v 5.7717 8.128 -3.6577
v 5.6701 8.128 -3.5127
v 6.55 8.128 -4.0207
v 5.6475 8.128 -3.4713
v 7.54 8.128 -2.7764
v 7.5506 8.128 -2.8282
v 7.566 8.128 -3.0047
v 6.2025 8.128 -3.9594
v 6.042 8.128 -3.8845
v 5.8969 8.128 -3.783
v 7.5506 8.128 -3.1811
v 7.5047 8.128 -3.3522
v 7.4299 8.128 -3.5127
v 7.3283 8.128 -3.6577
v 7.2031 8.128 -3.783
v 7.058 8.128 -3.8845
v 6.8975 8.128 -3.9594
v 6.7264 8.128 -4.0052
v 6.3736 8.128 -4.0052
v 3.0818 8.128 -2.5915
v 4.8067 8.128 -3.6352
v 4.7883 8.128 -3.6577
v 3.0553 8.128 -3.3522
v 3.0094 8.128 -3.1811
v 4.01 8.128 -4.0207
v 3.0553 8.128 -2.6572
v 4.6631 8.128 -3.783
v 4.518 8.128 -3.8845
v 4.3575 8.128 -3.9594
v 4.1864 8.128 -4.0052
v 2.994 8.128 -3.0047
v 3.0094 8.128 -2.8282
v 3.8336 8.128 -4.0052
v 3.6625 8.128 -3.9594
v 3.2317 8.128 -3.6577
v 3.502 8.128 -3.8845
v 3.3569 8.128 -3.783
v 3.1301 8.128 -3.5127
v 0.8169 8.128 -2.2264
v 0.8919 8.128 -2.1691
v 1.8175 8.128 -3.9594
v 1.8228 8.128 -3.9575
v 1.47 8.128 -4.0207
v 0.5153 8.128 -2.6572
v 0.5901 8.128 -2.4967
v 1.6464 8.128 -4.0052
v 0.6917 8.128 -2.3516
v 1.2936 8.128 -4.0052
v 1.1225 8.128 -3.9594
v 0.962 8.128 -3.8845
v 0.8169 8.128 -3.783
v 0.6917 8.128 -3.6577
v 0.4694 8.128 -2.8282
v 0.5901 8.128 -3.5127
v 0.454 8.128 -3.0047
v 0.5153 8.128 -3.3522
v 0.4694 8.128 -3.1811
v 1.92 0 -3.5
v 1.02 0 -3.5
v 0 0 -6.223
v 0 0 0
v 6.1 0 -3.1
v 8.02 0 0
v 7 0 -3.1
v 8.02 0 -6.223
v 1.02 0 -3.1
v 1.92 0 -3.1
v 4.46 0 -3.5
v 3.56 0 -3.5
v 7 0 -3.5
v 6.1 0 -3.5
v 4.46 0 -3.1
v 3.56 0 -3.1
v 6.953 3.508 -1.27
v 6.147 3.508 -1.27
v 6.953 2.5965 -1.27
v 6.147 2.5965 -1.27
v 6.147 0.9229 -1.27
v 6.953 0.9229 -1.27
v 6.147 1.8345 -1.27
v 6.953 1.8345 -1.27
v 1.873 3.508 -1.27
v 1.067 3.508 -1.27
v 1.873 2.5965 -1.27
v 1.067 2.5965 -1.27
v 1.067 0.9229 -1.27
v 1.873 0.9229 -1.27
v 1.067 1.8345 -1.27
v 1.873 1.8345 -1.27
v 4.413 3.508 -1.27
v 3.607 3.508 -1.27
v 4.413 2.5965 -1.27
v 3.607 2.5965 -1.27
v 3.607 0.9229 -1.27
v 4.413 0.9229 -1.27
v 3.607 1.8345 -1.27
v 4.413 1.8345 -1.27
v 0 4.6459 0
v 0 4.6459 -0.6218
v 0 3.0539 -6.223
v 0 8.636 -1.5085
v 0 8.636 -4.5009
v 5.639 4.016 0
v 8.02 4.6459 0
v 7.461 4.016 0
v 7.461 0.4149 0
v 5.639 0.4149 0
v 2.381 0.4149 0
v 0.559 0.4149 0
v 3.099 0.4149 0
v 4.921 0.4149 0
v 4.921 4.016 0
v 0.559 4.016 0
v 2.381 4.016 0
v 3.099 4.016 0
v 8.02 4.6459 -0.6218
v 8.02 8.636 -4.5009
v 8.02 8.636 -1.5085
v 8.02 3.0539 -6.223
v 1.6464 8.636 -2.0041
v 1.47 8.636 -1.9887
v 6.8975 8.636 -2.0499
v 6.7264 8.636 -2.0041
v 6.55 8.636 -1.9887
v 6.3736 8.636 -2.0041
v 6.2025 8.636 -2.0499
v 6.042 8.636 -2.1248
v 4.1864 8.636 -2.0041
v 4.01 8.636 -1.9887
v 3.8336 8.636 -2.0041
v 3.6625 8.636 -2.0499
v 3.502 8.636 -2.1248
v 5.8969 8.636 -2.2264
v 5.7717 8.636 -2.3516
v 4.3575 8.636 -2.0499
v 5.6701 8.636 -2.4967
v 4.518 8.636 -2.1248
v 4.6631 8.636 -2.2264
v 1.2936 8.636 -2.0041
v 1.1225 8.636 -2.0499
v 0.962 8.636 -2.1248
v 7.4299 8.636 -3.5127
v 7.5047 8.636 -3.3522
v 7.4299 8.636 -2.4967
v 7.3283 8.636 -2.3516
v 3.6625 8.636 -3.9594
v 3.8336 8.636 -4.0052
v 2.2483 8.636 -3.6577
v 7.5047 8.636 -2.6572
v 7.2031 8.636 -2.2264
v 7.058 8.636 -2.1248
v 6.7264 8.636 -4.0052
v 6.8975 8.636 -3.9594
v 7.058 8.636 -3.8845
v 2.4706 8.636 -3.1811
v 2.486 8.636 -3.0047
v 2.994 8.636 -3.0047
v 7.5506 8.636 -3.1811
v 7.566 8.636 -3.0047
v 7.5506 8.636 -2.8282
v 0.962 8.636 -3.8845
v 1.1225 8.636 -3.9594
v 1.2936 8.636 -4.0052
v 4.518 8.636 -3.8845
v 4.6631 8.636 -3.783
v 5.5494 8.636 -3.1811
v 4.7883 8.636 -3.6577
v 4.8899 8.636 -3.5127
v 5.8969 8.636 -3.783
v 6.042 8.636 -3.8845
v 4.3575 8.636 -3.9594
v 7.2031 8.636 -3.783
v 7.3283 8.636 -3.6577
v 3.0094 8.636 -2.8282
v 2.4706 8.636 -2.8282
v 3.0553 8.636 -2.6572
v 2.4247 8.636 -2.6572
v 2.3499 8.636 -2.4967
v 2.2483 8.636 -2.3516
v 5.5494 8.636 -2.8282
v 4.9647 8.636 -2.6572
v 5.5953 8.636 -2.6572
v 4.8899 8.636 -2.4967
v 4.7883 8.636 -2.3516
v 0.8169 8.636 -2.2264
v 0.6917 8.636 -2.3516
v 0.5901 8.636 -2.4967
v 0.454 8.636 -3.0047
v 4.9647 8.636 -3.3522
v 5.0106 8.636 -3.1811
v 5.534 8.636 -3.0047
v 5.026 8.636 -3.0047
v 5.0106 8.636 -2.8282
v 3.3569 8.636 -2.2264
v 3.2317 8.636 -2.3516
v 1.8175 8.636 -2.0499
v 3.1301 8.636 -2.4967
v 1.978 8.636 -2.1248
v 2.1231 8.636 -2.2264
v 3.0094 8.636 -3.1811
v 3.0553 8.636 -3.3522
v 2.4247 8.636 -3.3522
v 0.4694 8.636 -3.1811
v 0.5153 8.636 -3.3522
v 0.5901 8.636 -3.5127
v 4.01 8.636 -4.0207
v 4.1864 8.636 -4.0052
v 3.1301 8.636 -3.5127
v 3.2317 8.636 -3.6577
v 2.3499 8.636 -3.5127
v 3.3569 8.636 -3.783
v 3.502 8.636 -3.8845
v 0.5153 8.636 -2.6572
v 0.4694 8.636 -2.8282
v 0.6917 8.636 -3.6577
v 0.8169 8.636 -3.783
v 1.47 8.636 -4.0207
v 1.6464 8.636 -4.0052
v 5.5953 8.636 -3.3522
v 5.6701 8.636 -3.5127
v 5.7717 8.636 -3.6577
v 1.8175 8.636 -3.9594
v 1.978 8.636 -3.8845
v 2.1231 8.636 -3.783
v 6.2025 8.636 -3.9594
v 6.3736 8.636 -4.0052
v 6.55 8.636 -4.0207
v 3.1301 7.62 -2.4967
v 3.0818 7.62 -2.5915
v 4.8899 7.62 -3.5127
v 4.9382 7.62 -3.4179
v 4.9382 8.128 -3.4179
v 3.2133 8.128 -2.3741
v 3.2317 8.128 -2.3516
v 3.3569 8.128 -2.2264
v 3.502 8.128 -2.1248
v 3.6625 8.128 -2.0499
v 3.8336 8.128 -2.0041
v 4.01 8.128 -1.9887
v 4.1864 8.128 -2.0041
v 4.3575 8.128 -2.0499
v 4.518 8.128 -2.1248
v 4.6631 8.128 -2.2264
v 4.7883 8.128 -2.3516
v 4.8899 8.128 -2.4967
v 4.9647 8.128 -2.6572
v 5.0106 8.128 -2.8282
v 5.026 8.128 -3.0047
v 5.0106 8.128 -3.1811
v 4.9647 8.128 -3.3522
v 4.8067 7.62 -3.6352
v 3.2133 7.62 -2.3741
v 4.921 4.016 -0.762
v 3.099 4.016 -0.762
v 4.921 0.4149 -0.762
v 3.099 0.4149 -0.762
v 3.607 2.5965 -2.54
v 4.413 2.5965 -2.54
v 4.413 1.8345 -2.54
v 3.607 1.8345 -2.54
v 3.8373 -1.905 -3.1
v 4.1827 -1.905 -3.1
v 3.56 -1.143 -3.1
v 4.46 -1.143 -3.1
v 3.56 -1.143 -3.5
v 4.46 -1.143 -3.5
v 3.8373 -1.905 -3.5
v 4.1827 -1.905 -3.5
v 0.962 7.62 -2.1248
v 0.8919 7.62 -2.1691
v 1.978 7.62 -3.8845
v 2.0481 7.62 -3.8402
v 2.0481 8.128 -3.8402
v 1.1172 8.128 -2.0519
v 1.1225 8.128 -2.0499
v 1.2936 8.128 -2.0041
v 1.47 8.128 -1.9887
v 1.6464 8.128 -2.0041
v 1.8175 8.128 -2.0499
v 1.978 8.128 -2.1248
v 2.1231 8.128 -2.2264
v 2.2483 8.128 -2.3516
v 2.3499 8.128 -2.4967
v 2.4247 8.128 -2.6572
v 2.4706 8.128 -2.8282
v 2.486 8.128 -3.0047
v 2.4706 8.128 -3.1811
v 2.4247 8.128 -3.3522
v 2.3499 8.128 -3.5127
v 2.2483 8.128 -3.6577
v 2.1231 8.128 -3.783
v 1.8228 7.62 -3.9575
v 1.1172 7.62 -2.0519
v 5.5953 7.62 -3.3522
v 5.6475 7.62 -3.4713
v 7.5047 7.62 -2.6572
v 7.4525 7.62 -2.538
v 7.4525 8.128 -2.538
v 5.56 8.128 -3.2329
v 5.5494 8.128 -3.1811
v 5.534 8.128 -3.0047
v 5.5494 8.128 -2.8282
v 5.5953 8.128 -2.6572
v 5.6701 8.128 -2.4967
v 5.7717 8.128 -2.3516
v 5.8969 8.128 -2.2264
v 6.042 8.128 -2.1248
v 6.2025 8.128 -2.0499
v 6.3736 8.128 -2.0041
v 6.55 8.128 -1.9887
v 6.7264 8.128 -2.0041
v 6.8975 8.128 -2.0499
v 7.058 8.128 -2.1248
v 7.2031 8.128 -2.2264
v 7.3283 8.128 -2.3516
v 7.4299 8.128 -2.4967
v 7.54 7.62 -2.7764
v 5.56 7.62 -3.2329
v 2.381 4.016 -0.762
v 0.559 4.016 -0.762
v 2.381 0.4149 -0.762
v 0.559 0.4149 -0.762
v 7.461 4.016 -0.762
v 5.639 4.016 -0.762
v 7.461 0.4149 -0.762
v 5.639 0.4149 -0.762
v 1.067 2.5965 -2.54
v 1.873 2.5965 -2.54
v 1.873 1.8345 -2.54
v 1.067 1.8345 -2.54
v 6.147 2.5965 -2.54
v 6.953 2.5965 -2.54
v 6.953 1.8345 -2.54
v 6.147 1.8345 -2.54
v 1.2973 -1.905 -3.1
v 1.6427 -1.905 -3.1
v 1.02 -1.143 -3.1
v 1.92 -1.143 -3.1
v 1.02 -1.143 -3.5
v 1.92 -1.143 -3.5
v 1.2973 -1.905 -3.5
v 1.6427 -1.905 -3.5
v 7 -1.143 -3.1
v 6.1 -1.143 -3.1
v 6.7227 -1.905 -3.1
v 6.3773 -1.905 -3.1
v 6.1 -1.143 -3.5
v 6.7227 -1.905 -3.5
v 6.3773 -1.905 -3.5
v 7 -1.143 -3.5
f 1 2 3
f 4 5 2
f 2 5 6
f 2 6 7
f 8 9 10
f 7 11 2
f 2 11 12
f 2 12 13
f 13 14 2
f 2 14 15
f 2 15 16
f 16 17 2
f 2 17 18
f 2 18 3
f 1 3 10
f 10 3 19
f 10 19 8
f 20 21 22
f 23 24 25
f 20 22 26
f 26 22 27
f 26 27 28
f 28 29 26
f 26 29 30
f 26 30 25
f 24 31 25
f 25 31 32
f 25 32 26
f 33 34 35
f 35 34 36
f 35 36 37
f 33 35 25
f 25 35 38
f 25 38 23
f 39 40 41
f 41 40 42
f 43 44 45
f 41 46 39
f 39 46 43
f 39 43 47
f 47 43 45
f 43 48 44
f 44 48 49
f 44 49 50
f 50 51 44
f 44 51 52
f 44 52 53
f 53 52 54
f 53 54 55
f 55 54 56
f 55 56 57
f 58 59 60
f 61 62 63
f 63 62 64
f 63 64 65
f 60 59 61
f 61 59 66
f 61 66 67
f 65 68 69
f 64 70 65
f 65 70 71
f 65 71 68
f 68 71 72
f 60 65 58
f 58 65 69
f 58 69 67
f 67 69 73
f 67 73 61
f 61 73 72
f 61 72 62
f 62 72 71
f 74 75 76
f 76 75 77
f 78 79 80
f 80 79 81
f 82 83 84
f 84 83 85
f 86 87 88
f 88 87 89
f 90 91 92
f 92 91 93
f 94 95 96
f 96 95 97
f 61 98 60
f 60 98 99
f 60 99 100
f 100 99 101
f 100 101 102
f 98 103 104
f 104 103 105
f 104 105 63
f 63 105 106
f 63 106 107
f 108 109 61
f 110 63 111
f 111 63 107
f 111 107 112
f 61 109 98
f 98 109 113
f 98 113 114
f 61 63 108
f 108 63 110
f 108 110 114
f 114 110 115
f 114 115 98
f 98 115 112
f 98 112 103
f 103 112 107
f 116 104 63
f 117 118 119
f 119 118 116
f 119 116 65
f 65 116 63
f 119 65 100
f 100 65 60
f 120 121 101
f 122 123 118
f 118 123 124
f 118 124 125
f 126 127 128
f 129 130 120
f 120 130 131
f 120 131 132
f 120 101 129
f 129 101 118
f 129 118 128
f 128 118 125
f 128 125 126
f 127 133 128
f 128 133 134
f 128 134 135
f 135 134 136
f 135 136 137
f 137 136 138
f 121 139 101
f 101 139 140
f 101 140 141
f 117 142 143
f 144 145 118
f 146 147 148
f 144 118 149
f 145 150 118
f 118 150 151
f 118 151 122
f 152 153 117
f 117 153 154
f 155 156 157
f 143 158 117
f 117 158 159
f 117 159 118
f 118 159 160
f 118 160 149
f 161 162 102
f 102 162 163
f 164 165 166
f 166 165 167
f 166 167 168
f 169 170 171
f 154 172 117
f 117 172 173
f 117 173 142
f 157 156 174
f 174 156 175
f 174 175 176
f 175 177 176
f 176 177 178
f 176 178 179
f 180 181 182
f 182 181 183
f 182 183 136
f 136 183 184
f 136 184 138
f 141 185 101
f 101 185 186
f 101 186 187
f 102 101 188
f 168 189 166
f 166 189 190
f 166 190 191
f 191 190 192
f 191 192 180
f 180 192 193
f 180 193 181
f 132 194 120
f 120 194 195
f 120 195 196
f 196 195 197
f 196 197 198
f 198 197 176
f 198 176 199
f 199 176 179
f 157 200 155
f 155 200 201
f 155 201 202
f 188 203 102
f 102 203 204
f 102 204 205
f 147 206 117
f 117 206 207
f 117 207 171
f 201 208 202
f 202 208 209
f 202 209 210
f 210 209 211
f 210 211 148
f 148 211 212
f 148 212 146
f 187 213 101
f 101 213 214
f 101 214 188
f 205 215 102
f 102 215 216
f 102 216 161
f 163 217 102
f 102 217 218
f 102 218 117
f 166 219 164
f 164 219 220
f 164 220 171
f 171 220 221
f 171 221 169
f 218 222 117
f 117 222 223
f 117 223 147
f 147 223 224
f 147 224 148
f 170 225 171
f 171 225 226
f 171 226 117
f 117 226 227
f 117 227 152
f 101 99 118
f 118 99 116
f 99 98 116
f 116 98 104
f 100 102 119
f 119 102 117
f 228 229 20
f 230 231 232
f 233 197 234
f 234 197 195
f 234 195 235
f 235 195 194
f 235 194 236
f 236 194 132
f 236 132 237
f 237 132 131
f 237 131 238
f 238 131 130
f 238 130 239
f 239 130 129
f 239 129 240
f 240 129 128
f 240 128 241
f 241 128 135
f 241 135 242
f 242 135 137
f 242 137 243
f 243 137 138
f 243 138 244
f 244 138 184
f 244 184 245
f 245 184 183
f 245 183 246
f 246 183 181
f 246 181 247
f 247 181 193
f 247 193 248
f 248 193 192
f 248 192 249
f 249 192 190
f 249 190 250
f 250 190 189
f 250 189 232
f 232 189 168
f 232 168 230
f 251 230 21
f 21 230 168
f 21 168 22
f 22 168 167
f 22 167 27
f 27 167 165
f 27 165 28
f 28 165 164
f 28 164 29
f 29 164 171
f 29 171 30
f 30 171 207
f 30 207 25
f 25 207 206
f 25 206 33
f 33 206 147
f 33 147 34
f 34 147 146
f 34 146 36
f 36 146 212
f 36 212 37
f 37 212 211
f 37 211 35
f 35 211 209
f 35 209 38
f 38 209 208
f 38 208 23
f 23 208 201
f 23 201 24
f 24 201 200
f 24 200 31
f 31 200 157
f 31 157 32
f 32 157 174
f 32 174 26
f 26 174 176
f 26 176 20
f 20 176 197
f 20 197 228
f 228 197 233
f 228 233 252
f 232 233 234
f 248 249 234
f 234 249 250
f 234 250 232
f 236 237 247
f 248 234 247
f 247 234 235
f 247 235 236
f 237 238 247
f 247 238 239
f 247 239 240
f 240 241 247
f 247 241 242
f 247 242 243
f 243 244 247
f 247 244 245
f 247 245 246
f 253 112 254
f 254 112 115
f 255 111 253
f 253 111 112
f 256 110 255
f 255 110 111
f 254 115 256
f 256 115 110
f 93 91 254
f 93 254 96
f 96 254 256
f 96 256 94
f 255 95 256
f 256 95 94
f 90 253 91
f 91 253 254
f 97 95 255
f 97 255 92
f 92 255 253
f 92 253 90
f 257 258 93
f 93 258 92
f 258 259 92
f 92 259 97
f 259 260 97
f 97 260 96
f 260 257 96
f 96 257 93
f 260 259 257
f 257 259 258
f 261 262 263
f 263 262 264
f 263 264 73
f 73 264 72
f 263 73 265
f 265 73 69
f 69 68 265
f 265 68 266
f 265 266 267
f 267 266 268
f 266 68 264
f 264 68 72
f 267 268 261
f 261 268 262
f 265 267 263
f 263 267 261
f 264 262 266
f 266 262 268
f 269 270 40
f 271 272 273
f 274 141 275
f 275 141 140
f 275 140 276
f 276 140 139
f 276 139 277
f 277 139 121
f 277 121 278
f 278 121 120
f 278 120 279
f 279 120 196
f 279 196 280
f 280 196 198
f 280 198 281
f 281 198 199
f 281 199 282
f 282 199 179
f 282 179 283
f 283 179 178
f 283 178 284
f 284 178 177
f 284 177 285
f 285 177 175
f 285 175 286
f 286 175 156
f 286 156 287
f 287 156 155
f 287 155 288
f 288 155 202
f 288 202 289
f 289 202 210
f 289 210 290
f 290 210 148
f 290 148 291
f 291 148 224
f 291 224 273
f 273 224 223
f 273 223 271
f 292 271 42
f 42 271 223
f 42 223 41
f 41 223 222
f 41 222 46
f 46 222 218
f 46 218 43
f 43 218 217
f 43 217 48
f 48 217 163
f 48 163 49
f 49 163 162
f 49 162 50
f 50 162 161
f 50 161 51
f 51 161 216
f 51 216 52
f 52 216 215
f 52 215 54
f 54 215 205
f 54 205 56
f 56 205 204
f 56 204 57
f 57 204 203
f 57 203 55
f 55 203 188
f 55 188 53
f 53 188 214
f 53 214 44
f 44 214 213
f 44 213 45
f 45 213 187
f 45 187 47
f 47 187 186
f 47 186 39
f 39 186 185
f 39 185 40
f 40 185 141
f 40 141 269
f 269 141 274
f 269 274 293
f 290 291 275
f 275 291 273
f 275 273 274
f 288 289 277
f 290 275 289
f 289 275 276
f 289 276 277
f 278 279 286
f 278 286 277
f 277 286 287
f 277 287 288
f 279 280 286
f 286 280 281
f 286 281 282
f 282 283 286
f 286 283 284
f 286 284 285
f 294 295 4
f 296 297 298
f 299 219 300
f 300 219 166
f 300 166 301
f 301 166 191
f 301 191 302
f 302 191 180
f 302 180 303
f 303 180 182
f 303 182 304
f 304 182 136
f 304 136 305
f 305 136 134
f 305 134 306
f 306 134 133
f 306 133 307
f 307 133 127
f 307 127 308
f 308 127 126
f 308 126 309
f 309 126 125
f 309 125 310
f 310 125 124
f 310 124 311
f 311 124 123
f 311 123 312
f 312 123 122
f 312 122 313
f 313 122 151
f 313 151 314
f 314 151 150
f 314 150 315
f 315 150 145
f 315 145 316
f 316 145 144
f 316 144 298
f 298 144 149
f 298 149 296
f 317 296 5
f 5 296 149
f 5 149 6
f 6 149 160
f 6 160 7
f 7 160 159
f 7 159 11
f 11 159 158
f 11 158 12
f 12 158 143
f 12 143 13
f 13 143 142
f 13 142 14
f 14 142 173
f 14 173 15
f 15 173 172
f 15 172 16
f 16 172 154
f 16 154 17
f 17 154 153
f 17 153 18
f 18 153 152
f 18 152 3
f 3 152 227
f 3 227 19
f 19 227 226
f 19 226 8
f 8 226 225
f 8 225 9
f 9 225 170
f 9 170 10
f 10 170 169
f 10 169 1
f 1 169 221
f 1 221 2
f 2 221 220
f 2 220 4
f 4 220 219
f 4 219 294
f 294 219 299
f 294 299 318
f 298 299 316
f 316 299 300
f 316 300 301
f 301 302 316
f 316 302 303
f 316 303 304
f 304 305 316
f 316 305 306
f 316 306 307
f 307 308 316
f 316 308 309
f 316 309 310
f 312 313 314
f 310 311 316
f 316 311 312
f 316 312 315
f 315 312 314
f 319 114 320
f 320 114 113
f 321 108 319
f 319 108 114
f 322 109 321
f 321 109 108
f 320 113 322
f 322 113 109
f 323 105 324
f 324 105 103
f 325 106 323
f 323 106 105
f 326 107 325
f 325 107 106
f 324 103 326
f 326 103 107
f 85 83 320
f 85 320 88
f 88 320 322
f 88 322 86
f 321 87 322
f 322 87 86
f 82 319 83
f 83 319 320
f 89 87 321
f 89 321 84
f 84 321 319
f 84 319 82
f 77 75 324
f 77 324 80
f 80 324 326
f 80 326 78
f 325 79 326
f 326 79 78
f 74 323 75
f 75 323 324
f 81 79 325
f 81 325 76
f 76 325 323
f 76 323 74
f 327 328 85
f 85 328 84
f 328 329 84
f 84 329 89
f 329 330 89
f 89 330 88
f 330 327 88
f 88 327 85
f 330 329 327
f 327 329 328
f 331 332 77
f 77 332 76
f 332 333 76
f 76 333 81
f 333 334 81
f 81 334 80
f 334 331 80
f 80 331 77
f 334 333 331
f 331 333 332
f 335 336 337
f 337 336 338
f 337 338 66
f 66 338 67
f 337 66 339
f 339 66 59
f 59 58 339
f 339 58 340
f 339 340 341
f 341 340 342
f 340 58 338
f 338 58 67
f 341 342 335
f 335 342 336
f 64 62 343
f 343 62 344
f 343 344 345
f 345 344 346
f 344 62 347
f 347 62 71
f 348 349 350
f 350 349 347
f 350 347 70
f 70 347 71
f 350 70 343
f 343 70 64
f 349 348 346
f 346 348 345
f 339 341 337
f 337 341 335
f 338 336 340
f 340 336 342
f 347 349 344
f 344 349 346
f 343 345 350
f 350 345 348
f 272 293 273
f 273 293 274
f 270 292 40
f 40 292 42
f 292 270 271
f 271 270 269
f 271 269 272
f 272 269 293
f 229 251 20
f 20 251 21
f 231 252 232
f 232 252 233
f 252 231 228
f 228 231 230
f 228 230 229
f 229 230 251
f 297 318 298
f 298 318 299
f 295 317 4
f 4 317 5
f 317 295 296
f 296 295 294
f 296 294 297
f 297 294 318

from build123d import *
from OCP.BRepFilletAPI import BRepFilletAPI_MakeChamfer
from build123d.topology import SkipClean

# Parameters (mm, degrees)
SKETCH1_W             = 8.02
SKETCH1_H             = 6.223
EXTRUDE1_DEPTH        = 8.636
CUT_EXTRUDE1_DEPTH    = 14.327663899
CUT_EXTRUDE2_DEPTH    = 14.327663899
SKETCH4_R             = 1.016
CUT_EXTRUDE3_DEPTH    = 0.508
SKETCH6_W             = 1.82195597
SKETCH6_H             = 3.601033201
CUT_EXTRUDE5_DEPTH    = 1.27
CHAMFER1_SIZE         = 0.508
CUT_EXTRUDE6_DEPTH    = 1.27
SKETCH8_W             = 0.9
SKETCH8_H             = 0.4
EXTRUDE2_DEPTH        = 1.905
CHAMFER2_SIZE         = 0.762
CHAMFER2_SIZE2        = 0.277345319
LPATTERN1_START       = 0.41494466
LPATTERN1_DEPTH       = 3.601033201
LPATTERN1_START_2     = 8.128
LPATTERN1_2_OUTLINE_R = 1.016
LPATTERN1_2_DEPTH     = 0.508
LPATTERN1_START_3     = 1.83446126
LPATTERN1_3_DEPTH     = 0.762
LPATTERN1_START_4     = -1.143
LPATTERN1_4_OUTLINE_W = 0.9
LPATTERN1_4_OUTLINE_H = 0.4
LPATTERN1_4_DEPTH     = 1.55794466
LPATTERN1_START_5     = -3.5
LPATTERN1_5_DEPTH     = 0.4
LPATTERN1_6_DEPTH     = 8
CUT_EXTRUDE4_START    = -0.508
CUT_EXTRUDE4_DEPTH    = 0.508


with BuildPart() as part:
    # Sketch1 → Extrude1 (new body)
    with BuildSketch(Plane(origin=(0, 0, 0), x_dir=(1, 0, 0), z_dir=(0, 1, 0))):
        with Locations((4.01, 3.1115)):
            Rectangle(SKETCH1_W, SKETCH1_H)
    extrude(amount=EXTRUDE1_DEPTH)

    # Sketch2 → Cut-Extrude1 (cut, through all)
    with BuildSketch(Plane(origin=(8.02, 0, 0), x_dir=(0, 0, -1), z_dir=(1, 0, 0))):
        Polygon((0, 4.645946632), (0.62179162, 4.645946632), (1.508470146, 8.636), (0, 8.636), align=None)
    extrude(amount=-CUT_EXTRUDE1_DEPTH, mode=Mode.SUBTRACT)

    # Sketch3 → Cut-Extrude2 (cut, through all)
    with BuildSketch(Plane(origin=(8.02, 0, 0), x_dir=(0, 0, -1), z_dir=(1, 0, 0))):
        Polygon((4.500853694, 8.636), (6.223, 3.053870593), (6.223, 8.636), align=None)
    extrude(amount=-CUT_EXTRUDE2_DEPTH, mode=Mode.SUBTRACT)

    # Sketch4 → Cut-Extrude3 (cut)
    with BuildSketch(Plane(origin=(0, 8.636, 0), x_dir=(1, 0, 0), z_dir=(0, 1, 0))):
        with Locations(Location((4.01, 3.00466192, 0), (0, 0, 270))):
            Circle(SKETCH4_R)
    extrude(amount=-CUT_EXTRUDE3_DEPTH, mode=Mode.SUBTRACT)

    # Sketch6 → Cut-Extrude5 (cut)
    with BuildSketch(Plane.XY):
        with Locations((4.01, 2.215461261)):
            Rectangle(SKETCH6_W, SKETCH6_H)
    extrude(amount=-CUT_EXTRUDE5_DEPTH, mode=Mode.SUBTRACT)

    # Chamfer1
    chamfer1_edges = [part.edges().sort_by_distance(p)[0] for p in [
        (4.01, 4.015977861, -1.27),
        (4.920977985, 2.21546126, -1.27),
        (4.01, 0.41494466, -1.27),
        (3.099022015, 2.21546126, -1.27),
    ]]
    chamfer(chamfer1_edges, length=CHAMFER1_SIZE)

    # Sketch7 → Cut-Extrude6 (cut)
    with BuildSketch(Plane.XY.offset(-1.27)):
        Polygon((3.607022015, 2.59646126), (3.607021944, 1.83446126), (4.412977985, 1.83446126), (4.412977985, 2.59646126), align=None)
    extrude(amount=-CUT_EXTRUDE6_DEPTH, mode=Mode.SUBTRACT)

    # Sketch8 → Extrude2 (add)
    with BuildSketch(Plane.XZ):
        with Locations((4.01, -3.3)):
            Rectangle(SKETCH8_W, SKETCH8_H)
    extrude(amount=EXTRUDE2_DEPTH)

    # Chamfer2: one chamfer whose edges measure the first distance from different faces: ONE call of the kernel's chamfer builder (chamfer() names one face for all edges)
    chamfer2_edges_1 = [part.edges().sort_by_distance(p)[0] for p in [
        (3.56, -1.905, -3.3),
    ]]
    chamfer2_side_1 = [part.faces().sort_by_distance(p)[0] for p in [
        (3.56, -0.9525, -3.3),
    ]]
    chamfer2_edges_2 = [part.edges().sort_by_distance(p)[0] for p in [
        (4.46, -1.905, -3.3),
    ]]
    chamfer2_side_2 = [part.faces().sort_by_distance(p)[0] for p in [
        (4.46, -0.9525, -3.3),
    ]]
    chamfer2 = BRepFilletAPI_MakeChamfer(part.part.solid().wrapped)
    for e in chamfer2_edges_1:
        chamfer2.Add(CHAMFER2_SIZE, CHAMFER2_SIZE2, e.wrapped, chamfer2_side_1[0].wrapped)  # the first distance lies on this face
    for e in chamfer2_edges_2:
        chamfer2.Add(CHAMFER2_SIZE, CHAMFER2_SIZE2, e.wrapped, chamfer2_side_2[0].wrapped)  # the first distance lies on this face
    add(Compound.cast(chamfer2.Shape()), mode=Mode.REPLACE)

    # LPattern1: read off the stored shape, not the designer's step
    # LPattern1 outline → LPattern1 (cut)
    with BuildSketch(Plane(origin=(0, 0, 0), x_dir=(1, 0, 0), z_dir=(0, 1, 0)).offset(LPATTERN1_START)):
        Polygon((7.460977985, 0.762), (6.952977985, 1.27), (6.147022015, 1.27), (5.639022015, 0.762), (5.639022015, 0), (7.460977985, 0), align=None)
        Polygon((0.559022015, 0), (2.380977985, 0), (2.380977985, 0.762), (1.872977985, 1.27), (1.067022015, 1.27), (0.559022015, 0.762), align=None)
    extrude(amount=LPATTERN1_DEPTH, mode=Mode.SUBTRACT)

    # LPattern1 2 outline → LPattern1 2 (cut)
    with BuildSketch(Plane(origin=(0, 0, 0), x_dir=(1, 0, 0), z_dir=(0, 1, 0)).offset(LPATTERN1_START_2)):
        with Locations((6.55, 3.00466192)):
            Circle(LPATTERN1_2_OUTLINE_R)
        with Locations((1.47, 3.00466192)):
            Circle(LPATTERN1_2_OUTLINE_R)
    extrude(amount=LPATTERN1_2_DEPTH, mode=Mode.SUBTRACT)

    # LPattern1 3 outline → LPattern1 3 (cut)
    with BuildSketch(Plane(origin=(0, 0, 0), x_dir=(1, 0, 0), z_dir=(0, 1, 0)).offset(LPATTERN1_START_3)):
        Polygon((6.147022015, 1.27), (6.952977985, 1.27), (6.952977985, 2.54), (6.147021944, 2.54), align=None)
        Polygon((1.067022015, 1.27), (1.872977985, 1.27), (1.872977985, 2.54), (1.067021944, 2.54), align=None)
    extrude(amount=LPATTERN1_3_DEPTH, mode=Mode.SUBTRACT)

    # LPattern1 4 outline → LPattern1 4 (add)
    with BuildSketch(Plane(origin=(0, 0, 0), x_dir=(1, 0, 0), z_dir=(0, 1, 0)).offset(LPATTERN1_START_4)):
        with Locations((1.47, 3.3)):
            Rectangle(LPATTERN1_4_OUTLINE_W, LPATTERN1_4_OUTLINE_H)
        with Locations((6.55, 3.3)):
            Rectangle(LPATTERN1_4_OUTLINE_W, LPATTERN1_4_OUTLINE_H)
    extrude(amount=LPATTERN1_4_DEPTH)

    # LPattern1 5 outline → LPattern1 5 (add)
    with BuildSketch(Plane.XY.offset(LPATTERN1_START_5)):
        Polygon((1.297345319, -1.905), (1.642654681, -1.905), (1.92, -1.143), (1.02, -1.143), align=None)
        Polygon((6.377345319, -1.905), (6.722654681, -1.905), (7, -1.143), (6.1, -1.143), align=None)
    extrude(amount=LPATTERN1_5_DEPTH)

    # LPattern1 6 outline → LPattern1 6 (add)
    with BuildSketch(Plane.YZ):
        Polygon((0.41494466, -1.27), (0.92294466, -1.27), (0.41494466, -0.762), align=None)
        Polygon((4.015977861, -1.27), (4.015977861, -0.762), (3.507977861, -1.27), align=None)
    extrude(amount=LPATTERN1_6_DEPTH)

    # Sketch5 → Cut-Extrude4 (cut)
    with SkipClean():  # the faces are left unmerged after this step: merging them gives an invalid solid
        with BuildSketch(Plane(origin=(0, 8.128, 0), x_dir=(1, 0, 0), z_dir=(0, 1, 0)).offset(CUT_EXTRUDE4_START)):
            with BuildLine():
                ThreePointArc((5.647513235, 3.471324151), (5.596258893, 3.354853153), (5.559965426, 3.232888875))
                Line((5.559965426, 3.232888875), (7.452486765, 2.537999689))
                ThreePointArc((7.452486765, 2.537999689), (7.503741107, 2.654470687), (7.540034574, 2.776434965))
                Line((7.540034574, 2.776434965), (5.647513235, 3.471324151))
            make_face()
            with BuildLine():
                ThreePointArc((3.08182296, 2.591450857), (3.140754275, 2.478669649), (3.213321028, 2.374139426))
                Line((3.213321028, 2.374139426), (4.93817704, 3.417872983))
                ThreePointArc((4.93817704, 3.417872983), (4.879245725, 3.530654191), (4.806678972, 3.635184414))
                Line((4.806678972, 3.635184414), (3.08182296, 2.591450857))
            make_face()
            with BuildLine():
                ThreePointArc((0.891932879, 2.169141481), (1.000906863, 2.103436294), (1.117239285, 2.051868197))
                Line((1.117239285, 2.051868197), (2.048067121, 3.840182359))
                ThreePointArc((2.048067121, 3.840182359), (1.939093137, 3.905887546), (1.822760715, 3.957455643))
                Line((1.822760715, 3.957455643), (0.891932879, 2.169141481))
            make_face()
        extrude(amount=CUT_EXTRUDE4_DEPTH, mode=Mode.SUBTRACT)


solid = part.part
